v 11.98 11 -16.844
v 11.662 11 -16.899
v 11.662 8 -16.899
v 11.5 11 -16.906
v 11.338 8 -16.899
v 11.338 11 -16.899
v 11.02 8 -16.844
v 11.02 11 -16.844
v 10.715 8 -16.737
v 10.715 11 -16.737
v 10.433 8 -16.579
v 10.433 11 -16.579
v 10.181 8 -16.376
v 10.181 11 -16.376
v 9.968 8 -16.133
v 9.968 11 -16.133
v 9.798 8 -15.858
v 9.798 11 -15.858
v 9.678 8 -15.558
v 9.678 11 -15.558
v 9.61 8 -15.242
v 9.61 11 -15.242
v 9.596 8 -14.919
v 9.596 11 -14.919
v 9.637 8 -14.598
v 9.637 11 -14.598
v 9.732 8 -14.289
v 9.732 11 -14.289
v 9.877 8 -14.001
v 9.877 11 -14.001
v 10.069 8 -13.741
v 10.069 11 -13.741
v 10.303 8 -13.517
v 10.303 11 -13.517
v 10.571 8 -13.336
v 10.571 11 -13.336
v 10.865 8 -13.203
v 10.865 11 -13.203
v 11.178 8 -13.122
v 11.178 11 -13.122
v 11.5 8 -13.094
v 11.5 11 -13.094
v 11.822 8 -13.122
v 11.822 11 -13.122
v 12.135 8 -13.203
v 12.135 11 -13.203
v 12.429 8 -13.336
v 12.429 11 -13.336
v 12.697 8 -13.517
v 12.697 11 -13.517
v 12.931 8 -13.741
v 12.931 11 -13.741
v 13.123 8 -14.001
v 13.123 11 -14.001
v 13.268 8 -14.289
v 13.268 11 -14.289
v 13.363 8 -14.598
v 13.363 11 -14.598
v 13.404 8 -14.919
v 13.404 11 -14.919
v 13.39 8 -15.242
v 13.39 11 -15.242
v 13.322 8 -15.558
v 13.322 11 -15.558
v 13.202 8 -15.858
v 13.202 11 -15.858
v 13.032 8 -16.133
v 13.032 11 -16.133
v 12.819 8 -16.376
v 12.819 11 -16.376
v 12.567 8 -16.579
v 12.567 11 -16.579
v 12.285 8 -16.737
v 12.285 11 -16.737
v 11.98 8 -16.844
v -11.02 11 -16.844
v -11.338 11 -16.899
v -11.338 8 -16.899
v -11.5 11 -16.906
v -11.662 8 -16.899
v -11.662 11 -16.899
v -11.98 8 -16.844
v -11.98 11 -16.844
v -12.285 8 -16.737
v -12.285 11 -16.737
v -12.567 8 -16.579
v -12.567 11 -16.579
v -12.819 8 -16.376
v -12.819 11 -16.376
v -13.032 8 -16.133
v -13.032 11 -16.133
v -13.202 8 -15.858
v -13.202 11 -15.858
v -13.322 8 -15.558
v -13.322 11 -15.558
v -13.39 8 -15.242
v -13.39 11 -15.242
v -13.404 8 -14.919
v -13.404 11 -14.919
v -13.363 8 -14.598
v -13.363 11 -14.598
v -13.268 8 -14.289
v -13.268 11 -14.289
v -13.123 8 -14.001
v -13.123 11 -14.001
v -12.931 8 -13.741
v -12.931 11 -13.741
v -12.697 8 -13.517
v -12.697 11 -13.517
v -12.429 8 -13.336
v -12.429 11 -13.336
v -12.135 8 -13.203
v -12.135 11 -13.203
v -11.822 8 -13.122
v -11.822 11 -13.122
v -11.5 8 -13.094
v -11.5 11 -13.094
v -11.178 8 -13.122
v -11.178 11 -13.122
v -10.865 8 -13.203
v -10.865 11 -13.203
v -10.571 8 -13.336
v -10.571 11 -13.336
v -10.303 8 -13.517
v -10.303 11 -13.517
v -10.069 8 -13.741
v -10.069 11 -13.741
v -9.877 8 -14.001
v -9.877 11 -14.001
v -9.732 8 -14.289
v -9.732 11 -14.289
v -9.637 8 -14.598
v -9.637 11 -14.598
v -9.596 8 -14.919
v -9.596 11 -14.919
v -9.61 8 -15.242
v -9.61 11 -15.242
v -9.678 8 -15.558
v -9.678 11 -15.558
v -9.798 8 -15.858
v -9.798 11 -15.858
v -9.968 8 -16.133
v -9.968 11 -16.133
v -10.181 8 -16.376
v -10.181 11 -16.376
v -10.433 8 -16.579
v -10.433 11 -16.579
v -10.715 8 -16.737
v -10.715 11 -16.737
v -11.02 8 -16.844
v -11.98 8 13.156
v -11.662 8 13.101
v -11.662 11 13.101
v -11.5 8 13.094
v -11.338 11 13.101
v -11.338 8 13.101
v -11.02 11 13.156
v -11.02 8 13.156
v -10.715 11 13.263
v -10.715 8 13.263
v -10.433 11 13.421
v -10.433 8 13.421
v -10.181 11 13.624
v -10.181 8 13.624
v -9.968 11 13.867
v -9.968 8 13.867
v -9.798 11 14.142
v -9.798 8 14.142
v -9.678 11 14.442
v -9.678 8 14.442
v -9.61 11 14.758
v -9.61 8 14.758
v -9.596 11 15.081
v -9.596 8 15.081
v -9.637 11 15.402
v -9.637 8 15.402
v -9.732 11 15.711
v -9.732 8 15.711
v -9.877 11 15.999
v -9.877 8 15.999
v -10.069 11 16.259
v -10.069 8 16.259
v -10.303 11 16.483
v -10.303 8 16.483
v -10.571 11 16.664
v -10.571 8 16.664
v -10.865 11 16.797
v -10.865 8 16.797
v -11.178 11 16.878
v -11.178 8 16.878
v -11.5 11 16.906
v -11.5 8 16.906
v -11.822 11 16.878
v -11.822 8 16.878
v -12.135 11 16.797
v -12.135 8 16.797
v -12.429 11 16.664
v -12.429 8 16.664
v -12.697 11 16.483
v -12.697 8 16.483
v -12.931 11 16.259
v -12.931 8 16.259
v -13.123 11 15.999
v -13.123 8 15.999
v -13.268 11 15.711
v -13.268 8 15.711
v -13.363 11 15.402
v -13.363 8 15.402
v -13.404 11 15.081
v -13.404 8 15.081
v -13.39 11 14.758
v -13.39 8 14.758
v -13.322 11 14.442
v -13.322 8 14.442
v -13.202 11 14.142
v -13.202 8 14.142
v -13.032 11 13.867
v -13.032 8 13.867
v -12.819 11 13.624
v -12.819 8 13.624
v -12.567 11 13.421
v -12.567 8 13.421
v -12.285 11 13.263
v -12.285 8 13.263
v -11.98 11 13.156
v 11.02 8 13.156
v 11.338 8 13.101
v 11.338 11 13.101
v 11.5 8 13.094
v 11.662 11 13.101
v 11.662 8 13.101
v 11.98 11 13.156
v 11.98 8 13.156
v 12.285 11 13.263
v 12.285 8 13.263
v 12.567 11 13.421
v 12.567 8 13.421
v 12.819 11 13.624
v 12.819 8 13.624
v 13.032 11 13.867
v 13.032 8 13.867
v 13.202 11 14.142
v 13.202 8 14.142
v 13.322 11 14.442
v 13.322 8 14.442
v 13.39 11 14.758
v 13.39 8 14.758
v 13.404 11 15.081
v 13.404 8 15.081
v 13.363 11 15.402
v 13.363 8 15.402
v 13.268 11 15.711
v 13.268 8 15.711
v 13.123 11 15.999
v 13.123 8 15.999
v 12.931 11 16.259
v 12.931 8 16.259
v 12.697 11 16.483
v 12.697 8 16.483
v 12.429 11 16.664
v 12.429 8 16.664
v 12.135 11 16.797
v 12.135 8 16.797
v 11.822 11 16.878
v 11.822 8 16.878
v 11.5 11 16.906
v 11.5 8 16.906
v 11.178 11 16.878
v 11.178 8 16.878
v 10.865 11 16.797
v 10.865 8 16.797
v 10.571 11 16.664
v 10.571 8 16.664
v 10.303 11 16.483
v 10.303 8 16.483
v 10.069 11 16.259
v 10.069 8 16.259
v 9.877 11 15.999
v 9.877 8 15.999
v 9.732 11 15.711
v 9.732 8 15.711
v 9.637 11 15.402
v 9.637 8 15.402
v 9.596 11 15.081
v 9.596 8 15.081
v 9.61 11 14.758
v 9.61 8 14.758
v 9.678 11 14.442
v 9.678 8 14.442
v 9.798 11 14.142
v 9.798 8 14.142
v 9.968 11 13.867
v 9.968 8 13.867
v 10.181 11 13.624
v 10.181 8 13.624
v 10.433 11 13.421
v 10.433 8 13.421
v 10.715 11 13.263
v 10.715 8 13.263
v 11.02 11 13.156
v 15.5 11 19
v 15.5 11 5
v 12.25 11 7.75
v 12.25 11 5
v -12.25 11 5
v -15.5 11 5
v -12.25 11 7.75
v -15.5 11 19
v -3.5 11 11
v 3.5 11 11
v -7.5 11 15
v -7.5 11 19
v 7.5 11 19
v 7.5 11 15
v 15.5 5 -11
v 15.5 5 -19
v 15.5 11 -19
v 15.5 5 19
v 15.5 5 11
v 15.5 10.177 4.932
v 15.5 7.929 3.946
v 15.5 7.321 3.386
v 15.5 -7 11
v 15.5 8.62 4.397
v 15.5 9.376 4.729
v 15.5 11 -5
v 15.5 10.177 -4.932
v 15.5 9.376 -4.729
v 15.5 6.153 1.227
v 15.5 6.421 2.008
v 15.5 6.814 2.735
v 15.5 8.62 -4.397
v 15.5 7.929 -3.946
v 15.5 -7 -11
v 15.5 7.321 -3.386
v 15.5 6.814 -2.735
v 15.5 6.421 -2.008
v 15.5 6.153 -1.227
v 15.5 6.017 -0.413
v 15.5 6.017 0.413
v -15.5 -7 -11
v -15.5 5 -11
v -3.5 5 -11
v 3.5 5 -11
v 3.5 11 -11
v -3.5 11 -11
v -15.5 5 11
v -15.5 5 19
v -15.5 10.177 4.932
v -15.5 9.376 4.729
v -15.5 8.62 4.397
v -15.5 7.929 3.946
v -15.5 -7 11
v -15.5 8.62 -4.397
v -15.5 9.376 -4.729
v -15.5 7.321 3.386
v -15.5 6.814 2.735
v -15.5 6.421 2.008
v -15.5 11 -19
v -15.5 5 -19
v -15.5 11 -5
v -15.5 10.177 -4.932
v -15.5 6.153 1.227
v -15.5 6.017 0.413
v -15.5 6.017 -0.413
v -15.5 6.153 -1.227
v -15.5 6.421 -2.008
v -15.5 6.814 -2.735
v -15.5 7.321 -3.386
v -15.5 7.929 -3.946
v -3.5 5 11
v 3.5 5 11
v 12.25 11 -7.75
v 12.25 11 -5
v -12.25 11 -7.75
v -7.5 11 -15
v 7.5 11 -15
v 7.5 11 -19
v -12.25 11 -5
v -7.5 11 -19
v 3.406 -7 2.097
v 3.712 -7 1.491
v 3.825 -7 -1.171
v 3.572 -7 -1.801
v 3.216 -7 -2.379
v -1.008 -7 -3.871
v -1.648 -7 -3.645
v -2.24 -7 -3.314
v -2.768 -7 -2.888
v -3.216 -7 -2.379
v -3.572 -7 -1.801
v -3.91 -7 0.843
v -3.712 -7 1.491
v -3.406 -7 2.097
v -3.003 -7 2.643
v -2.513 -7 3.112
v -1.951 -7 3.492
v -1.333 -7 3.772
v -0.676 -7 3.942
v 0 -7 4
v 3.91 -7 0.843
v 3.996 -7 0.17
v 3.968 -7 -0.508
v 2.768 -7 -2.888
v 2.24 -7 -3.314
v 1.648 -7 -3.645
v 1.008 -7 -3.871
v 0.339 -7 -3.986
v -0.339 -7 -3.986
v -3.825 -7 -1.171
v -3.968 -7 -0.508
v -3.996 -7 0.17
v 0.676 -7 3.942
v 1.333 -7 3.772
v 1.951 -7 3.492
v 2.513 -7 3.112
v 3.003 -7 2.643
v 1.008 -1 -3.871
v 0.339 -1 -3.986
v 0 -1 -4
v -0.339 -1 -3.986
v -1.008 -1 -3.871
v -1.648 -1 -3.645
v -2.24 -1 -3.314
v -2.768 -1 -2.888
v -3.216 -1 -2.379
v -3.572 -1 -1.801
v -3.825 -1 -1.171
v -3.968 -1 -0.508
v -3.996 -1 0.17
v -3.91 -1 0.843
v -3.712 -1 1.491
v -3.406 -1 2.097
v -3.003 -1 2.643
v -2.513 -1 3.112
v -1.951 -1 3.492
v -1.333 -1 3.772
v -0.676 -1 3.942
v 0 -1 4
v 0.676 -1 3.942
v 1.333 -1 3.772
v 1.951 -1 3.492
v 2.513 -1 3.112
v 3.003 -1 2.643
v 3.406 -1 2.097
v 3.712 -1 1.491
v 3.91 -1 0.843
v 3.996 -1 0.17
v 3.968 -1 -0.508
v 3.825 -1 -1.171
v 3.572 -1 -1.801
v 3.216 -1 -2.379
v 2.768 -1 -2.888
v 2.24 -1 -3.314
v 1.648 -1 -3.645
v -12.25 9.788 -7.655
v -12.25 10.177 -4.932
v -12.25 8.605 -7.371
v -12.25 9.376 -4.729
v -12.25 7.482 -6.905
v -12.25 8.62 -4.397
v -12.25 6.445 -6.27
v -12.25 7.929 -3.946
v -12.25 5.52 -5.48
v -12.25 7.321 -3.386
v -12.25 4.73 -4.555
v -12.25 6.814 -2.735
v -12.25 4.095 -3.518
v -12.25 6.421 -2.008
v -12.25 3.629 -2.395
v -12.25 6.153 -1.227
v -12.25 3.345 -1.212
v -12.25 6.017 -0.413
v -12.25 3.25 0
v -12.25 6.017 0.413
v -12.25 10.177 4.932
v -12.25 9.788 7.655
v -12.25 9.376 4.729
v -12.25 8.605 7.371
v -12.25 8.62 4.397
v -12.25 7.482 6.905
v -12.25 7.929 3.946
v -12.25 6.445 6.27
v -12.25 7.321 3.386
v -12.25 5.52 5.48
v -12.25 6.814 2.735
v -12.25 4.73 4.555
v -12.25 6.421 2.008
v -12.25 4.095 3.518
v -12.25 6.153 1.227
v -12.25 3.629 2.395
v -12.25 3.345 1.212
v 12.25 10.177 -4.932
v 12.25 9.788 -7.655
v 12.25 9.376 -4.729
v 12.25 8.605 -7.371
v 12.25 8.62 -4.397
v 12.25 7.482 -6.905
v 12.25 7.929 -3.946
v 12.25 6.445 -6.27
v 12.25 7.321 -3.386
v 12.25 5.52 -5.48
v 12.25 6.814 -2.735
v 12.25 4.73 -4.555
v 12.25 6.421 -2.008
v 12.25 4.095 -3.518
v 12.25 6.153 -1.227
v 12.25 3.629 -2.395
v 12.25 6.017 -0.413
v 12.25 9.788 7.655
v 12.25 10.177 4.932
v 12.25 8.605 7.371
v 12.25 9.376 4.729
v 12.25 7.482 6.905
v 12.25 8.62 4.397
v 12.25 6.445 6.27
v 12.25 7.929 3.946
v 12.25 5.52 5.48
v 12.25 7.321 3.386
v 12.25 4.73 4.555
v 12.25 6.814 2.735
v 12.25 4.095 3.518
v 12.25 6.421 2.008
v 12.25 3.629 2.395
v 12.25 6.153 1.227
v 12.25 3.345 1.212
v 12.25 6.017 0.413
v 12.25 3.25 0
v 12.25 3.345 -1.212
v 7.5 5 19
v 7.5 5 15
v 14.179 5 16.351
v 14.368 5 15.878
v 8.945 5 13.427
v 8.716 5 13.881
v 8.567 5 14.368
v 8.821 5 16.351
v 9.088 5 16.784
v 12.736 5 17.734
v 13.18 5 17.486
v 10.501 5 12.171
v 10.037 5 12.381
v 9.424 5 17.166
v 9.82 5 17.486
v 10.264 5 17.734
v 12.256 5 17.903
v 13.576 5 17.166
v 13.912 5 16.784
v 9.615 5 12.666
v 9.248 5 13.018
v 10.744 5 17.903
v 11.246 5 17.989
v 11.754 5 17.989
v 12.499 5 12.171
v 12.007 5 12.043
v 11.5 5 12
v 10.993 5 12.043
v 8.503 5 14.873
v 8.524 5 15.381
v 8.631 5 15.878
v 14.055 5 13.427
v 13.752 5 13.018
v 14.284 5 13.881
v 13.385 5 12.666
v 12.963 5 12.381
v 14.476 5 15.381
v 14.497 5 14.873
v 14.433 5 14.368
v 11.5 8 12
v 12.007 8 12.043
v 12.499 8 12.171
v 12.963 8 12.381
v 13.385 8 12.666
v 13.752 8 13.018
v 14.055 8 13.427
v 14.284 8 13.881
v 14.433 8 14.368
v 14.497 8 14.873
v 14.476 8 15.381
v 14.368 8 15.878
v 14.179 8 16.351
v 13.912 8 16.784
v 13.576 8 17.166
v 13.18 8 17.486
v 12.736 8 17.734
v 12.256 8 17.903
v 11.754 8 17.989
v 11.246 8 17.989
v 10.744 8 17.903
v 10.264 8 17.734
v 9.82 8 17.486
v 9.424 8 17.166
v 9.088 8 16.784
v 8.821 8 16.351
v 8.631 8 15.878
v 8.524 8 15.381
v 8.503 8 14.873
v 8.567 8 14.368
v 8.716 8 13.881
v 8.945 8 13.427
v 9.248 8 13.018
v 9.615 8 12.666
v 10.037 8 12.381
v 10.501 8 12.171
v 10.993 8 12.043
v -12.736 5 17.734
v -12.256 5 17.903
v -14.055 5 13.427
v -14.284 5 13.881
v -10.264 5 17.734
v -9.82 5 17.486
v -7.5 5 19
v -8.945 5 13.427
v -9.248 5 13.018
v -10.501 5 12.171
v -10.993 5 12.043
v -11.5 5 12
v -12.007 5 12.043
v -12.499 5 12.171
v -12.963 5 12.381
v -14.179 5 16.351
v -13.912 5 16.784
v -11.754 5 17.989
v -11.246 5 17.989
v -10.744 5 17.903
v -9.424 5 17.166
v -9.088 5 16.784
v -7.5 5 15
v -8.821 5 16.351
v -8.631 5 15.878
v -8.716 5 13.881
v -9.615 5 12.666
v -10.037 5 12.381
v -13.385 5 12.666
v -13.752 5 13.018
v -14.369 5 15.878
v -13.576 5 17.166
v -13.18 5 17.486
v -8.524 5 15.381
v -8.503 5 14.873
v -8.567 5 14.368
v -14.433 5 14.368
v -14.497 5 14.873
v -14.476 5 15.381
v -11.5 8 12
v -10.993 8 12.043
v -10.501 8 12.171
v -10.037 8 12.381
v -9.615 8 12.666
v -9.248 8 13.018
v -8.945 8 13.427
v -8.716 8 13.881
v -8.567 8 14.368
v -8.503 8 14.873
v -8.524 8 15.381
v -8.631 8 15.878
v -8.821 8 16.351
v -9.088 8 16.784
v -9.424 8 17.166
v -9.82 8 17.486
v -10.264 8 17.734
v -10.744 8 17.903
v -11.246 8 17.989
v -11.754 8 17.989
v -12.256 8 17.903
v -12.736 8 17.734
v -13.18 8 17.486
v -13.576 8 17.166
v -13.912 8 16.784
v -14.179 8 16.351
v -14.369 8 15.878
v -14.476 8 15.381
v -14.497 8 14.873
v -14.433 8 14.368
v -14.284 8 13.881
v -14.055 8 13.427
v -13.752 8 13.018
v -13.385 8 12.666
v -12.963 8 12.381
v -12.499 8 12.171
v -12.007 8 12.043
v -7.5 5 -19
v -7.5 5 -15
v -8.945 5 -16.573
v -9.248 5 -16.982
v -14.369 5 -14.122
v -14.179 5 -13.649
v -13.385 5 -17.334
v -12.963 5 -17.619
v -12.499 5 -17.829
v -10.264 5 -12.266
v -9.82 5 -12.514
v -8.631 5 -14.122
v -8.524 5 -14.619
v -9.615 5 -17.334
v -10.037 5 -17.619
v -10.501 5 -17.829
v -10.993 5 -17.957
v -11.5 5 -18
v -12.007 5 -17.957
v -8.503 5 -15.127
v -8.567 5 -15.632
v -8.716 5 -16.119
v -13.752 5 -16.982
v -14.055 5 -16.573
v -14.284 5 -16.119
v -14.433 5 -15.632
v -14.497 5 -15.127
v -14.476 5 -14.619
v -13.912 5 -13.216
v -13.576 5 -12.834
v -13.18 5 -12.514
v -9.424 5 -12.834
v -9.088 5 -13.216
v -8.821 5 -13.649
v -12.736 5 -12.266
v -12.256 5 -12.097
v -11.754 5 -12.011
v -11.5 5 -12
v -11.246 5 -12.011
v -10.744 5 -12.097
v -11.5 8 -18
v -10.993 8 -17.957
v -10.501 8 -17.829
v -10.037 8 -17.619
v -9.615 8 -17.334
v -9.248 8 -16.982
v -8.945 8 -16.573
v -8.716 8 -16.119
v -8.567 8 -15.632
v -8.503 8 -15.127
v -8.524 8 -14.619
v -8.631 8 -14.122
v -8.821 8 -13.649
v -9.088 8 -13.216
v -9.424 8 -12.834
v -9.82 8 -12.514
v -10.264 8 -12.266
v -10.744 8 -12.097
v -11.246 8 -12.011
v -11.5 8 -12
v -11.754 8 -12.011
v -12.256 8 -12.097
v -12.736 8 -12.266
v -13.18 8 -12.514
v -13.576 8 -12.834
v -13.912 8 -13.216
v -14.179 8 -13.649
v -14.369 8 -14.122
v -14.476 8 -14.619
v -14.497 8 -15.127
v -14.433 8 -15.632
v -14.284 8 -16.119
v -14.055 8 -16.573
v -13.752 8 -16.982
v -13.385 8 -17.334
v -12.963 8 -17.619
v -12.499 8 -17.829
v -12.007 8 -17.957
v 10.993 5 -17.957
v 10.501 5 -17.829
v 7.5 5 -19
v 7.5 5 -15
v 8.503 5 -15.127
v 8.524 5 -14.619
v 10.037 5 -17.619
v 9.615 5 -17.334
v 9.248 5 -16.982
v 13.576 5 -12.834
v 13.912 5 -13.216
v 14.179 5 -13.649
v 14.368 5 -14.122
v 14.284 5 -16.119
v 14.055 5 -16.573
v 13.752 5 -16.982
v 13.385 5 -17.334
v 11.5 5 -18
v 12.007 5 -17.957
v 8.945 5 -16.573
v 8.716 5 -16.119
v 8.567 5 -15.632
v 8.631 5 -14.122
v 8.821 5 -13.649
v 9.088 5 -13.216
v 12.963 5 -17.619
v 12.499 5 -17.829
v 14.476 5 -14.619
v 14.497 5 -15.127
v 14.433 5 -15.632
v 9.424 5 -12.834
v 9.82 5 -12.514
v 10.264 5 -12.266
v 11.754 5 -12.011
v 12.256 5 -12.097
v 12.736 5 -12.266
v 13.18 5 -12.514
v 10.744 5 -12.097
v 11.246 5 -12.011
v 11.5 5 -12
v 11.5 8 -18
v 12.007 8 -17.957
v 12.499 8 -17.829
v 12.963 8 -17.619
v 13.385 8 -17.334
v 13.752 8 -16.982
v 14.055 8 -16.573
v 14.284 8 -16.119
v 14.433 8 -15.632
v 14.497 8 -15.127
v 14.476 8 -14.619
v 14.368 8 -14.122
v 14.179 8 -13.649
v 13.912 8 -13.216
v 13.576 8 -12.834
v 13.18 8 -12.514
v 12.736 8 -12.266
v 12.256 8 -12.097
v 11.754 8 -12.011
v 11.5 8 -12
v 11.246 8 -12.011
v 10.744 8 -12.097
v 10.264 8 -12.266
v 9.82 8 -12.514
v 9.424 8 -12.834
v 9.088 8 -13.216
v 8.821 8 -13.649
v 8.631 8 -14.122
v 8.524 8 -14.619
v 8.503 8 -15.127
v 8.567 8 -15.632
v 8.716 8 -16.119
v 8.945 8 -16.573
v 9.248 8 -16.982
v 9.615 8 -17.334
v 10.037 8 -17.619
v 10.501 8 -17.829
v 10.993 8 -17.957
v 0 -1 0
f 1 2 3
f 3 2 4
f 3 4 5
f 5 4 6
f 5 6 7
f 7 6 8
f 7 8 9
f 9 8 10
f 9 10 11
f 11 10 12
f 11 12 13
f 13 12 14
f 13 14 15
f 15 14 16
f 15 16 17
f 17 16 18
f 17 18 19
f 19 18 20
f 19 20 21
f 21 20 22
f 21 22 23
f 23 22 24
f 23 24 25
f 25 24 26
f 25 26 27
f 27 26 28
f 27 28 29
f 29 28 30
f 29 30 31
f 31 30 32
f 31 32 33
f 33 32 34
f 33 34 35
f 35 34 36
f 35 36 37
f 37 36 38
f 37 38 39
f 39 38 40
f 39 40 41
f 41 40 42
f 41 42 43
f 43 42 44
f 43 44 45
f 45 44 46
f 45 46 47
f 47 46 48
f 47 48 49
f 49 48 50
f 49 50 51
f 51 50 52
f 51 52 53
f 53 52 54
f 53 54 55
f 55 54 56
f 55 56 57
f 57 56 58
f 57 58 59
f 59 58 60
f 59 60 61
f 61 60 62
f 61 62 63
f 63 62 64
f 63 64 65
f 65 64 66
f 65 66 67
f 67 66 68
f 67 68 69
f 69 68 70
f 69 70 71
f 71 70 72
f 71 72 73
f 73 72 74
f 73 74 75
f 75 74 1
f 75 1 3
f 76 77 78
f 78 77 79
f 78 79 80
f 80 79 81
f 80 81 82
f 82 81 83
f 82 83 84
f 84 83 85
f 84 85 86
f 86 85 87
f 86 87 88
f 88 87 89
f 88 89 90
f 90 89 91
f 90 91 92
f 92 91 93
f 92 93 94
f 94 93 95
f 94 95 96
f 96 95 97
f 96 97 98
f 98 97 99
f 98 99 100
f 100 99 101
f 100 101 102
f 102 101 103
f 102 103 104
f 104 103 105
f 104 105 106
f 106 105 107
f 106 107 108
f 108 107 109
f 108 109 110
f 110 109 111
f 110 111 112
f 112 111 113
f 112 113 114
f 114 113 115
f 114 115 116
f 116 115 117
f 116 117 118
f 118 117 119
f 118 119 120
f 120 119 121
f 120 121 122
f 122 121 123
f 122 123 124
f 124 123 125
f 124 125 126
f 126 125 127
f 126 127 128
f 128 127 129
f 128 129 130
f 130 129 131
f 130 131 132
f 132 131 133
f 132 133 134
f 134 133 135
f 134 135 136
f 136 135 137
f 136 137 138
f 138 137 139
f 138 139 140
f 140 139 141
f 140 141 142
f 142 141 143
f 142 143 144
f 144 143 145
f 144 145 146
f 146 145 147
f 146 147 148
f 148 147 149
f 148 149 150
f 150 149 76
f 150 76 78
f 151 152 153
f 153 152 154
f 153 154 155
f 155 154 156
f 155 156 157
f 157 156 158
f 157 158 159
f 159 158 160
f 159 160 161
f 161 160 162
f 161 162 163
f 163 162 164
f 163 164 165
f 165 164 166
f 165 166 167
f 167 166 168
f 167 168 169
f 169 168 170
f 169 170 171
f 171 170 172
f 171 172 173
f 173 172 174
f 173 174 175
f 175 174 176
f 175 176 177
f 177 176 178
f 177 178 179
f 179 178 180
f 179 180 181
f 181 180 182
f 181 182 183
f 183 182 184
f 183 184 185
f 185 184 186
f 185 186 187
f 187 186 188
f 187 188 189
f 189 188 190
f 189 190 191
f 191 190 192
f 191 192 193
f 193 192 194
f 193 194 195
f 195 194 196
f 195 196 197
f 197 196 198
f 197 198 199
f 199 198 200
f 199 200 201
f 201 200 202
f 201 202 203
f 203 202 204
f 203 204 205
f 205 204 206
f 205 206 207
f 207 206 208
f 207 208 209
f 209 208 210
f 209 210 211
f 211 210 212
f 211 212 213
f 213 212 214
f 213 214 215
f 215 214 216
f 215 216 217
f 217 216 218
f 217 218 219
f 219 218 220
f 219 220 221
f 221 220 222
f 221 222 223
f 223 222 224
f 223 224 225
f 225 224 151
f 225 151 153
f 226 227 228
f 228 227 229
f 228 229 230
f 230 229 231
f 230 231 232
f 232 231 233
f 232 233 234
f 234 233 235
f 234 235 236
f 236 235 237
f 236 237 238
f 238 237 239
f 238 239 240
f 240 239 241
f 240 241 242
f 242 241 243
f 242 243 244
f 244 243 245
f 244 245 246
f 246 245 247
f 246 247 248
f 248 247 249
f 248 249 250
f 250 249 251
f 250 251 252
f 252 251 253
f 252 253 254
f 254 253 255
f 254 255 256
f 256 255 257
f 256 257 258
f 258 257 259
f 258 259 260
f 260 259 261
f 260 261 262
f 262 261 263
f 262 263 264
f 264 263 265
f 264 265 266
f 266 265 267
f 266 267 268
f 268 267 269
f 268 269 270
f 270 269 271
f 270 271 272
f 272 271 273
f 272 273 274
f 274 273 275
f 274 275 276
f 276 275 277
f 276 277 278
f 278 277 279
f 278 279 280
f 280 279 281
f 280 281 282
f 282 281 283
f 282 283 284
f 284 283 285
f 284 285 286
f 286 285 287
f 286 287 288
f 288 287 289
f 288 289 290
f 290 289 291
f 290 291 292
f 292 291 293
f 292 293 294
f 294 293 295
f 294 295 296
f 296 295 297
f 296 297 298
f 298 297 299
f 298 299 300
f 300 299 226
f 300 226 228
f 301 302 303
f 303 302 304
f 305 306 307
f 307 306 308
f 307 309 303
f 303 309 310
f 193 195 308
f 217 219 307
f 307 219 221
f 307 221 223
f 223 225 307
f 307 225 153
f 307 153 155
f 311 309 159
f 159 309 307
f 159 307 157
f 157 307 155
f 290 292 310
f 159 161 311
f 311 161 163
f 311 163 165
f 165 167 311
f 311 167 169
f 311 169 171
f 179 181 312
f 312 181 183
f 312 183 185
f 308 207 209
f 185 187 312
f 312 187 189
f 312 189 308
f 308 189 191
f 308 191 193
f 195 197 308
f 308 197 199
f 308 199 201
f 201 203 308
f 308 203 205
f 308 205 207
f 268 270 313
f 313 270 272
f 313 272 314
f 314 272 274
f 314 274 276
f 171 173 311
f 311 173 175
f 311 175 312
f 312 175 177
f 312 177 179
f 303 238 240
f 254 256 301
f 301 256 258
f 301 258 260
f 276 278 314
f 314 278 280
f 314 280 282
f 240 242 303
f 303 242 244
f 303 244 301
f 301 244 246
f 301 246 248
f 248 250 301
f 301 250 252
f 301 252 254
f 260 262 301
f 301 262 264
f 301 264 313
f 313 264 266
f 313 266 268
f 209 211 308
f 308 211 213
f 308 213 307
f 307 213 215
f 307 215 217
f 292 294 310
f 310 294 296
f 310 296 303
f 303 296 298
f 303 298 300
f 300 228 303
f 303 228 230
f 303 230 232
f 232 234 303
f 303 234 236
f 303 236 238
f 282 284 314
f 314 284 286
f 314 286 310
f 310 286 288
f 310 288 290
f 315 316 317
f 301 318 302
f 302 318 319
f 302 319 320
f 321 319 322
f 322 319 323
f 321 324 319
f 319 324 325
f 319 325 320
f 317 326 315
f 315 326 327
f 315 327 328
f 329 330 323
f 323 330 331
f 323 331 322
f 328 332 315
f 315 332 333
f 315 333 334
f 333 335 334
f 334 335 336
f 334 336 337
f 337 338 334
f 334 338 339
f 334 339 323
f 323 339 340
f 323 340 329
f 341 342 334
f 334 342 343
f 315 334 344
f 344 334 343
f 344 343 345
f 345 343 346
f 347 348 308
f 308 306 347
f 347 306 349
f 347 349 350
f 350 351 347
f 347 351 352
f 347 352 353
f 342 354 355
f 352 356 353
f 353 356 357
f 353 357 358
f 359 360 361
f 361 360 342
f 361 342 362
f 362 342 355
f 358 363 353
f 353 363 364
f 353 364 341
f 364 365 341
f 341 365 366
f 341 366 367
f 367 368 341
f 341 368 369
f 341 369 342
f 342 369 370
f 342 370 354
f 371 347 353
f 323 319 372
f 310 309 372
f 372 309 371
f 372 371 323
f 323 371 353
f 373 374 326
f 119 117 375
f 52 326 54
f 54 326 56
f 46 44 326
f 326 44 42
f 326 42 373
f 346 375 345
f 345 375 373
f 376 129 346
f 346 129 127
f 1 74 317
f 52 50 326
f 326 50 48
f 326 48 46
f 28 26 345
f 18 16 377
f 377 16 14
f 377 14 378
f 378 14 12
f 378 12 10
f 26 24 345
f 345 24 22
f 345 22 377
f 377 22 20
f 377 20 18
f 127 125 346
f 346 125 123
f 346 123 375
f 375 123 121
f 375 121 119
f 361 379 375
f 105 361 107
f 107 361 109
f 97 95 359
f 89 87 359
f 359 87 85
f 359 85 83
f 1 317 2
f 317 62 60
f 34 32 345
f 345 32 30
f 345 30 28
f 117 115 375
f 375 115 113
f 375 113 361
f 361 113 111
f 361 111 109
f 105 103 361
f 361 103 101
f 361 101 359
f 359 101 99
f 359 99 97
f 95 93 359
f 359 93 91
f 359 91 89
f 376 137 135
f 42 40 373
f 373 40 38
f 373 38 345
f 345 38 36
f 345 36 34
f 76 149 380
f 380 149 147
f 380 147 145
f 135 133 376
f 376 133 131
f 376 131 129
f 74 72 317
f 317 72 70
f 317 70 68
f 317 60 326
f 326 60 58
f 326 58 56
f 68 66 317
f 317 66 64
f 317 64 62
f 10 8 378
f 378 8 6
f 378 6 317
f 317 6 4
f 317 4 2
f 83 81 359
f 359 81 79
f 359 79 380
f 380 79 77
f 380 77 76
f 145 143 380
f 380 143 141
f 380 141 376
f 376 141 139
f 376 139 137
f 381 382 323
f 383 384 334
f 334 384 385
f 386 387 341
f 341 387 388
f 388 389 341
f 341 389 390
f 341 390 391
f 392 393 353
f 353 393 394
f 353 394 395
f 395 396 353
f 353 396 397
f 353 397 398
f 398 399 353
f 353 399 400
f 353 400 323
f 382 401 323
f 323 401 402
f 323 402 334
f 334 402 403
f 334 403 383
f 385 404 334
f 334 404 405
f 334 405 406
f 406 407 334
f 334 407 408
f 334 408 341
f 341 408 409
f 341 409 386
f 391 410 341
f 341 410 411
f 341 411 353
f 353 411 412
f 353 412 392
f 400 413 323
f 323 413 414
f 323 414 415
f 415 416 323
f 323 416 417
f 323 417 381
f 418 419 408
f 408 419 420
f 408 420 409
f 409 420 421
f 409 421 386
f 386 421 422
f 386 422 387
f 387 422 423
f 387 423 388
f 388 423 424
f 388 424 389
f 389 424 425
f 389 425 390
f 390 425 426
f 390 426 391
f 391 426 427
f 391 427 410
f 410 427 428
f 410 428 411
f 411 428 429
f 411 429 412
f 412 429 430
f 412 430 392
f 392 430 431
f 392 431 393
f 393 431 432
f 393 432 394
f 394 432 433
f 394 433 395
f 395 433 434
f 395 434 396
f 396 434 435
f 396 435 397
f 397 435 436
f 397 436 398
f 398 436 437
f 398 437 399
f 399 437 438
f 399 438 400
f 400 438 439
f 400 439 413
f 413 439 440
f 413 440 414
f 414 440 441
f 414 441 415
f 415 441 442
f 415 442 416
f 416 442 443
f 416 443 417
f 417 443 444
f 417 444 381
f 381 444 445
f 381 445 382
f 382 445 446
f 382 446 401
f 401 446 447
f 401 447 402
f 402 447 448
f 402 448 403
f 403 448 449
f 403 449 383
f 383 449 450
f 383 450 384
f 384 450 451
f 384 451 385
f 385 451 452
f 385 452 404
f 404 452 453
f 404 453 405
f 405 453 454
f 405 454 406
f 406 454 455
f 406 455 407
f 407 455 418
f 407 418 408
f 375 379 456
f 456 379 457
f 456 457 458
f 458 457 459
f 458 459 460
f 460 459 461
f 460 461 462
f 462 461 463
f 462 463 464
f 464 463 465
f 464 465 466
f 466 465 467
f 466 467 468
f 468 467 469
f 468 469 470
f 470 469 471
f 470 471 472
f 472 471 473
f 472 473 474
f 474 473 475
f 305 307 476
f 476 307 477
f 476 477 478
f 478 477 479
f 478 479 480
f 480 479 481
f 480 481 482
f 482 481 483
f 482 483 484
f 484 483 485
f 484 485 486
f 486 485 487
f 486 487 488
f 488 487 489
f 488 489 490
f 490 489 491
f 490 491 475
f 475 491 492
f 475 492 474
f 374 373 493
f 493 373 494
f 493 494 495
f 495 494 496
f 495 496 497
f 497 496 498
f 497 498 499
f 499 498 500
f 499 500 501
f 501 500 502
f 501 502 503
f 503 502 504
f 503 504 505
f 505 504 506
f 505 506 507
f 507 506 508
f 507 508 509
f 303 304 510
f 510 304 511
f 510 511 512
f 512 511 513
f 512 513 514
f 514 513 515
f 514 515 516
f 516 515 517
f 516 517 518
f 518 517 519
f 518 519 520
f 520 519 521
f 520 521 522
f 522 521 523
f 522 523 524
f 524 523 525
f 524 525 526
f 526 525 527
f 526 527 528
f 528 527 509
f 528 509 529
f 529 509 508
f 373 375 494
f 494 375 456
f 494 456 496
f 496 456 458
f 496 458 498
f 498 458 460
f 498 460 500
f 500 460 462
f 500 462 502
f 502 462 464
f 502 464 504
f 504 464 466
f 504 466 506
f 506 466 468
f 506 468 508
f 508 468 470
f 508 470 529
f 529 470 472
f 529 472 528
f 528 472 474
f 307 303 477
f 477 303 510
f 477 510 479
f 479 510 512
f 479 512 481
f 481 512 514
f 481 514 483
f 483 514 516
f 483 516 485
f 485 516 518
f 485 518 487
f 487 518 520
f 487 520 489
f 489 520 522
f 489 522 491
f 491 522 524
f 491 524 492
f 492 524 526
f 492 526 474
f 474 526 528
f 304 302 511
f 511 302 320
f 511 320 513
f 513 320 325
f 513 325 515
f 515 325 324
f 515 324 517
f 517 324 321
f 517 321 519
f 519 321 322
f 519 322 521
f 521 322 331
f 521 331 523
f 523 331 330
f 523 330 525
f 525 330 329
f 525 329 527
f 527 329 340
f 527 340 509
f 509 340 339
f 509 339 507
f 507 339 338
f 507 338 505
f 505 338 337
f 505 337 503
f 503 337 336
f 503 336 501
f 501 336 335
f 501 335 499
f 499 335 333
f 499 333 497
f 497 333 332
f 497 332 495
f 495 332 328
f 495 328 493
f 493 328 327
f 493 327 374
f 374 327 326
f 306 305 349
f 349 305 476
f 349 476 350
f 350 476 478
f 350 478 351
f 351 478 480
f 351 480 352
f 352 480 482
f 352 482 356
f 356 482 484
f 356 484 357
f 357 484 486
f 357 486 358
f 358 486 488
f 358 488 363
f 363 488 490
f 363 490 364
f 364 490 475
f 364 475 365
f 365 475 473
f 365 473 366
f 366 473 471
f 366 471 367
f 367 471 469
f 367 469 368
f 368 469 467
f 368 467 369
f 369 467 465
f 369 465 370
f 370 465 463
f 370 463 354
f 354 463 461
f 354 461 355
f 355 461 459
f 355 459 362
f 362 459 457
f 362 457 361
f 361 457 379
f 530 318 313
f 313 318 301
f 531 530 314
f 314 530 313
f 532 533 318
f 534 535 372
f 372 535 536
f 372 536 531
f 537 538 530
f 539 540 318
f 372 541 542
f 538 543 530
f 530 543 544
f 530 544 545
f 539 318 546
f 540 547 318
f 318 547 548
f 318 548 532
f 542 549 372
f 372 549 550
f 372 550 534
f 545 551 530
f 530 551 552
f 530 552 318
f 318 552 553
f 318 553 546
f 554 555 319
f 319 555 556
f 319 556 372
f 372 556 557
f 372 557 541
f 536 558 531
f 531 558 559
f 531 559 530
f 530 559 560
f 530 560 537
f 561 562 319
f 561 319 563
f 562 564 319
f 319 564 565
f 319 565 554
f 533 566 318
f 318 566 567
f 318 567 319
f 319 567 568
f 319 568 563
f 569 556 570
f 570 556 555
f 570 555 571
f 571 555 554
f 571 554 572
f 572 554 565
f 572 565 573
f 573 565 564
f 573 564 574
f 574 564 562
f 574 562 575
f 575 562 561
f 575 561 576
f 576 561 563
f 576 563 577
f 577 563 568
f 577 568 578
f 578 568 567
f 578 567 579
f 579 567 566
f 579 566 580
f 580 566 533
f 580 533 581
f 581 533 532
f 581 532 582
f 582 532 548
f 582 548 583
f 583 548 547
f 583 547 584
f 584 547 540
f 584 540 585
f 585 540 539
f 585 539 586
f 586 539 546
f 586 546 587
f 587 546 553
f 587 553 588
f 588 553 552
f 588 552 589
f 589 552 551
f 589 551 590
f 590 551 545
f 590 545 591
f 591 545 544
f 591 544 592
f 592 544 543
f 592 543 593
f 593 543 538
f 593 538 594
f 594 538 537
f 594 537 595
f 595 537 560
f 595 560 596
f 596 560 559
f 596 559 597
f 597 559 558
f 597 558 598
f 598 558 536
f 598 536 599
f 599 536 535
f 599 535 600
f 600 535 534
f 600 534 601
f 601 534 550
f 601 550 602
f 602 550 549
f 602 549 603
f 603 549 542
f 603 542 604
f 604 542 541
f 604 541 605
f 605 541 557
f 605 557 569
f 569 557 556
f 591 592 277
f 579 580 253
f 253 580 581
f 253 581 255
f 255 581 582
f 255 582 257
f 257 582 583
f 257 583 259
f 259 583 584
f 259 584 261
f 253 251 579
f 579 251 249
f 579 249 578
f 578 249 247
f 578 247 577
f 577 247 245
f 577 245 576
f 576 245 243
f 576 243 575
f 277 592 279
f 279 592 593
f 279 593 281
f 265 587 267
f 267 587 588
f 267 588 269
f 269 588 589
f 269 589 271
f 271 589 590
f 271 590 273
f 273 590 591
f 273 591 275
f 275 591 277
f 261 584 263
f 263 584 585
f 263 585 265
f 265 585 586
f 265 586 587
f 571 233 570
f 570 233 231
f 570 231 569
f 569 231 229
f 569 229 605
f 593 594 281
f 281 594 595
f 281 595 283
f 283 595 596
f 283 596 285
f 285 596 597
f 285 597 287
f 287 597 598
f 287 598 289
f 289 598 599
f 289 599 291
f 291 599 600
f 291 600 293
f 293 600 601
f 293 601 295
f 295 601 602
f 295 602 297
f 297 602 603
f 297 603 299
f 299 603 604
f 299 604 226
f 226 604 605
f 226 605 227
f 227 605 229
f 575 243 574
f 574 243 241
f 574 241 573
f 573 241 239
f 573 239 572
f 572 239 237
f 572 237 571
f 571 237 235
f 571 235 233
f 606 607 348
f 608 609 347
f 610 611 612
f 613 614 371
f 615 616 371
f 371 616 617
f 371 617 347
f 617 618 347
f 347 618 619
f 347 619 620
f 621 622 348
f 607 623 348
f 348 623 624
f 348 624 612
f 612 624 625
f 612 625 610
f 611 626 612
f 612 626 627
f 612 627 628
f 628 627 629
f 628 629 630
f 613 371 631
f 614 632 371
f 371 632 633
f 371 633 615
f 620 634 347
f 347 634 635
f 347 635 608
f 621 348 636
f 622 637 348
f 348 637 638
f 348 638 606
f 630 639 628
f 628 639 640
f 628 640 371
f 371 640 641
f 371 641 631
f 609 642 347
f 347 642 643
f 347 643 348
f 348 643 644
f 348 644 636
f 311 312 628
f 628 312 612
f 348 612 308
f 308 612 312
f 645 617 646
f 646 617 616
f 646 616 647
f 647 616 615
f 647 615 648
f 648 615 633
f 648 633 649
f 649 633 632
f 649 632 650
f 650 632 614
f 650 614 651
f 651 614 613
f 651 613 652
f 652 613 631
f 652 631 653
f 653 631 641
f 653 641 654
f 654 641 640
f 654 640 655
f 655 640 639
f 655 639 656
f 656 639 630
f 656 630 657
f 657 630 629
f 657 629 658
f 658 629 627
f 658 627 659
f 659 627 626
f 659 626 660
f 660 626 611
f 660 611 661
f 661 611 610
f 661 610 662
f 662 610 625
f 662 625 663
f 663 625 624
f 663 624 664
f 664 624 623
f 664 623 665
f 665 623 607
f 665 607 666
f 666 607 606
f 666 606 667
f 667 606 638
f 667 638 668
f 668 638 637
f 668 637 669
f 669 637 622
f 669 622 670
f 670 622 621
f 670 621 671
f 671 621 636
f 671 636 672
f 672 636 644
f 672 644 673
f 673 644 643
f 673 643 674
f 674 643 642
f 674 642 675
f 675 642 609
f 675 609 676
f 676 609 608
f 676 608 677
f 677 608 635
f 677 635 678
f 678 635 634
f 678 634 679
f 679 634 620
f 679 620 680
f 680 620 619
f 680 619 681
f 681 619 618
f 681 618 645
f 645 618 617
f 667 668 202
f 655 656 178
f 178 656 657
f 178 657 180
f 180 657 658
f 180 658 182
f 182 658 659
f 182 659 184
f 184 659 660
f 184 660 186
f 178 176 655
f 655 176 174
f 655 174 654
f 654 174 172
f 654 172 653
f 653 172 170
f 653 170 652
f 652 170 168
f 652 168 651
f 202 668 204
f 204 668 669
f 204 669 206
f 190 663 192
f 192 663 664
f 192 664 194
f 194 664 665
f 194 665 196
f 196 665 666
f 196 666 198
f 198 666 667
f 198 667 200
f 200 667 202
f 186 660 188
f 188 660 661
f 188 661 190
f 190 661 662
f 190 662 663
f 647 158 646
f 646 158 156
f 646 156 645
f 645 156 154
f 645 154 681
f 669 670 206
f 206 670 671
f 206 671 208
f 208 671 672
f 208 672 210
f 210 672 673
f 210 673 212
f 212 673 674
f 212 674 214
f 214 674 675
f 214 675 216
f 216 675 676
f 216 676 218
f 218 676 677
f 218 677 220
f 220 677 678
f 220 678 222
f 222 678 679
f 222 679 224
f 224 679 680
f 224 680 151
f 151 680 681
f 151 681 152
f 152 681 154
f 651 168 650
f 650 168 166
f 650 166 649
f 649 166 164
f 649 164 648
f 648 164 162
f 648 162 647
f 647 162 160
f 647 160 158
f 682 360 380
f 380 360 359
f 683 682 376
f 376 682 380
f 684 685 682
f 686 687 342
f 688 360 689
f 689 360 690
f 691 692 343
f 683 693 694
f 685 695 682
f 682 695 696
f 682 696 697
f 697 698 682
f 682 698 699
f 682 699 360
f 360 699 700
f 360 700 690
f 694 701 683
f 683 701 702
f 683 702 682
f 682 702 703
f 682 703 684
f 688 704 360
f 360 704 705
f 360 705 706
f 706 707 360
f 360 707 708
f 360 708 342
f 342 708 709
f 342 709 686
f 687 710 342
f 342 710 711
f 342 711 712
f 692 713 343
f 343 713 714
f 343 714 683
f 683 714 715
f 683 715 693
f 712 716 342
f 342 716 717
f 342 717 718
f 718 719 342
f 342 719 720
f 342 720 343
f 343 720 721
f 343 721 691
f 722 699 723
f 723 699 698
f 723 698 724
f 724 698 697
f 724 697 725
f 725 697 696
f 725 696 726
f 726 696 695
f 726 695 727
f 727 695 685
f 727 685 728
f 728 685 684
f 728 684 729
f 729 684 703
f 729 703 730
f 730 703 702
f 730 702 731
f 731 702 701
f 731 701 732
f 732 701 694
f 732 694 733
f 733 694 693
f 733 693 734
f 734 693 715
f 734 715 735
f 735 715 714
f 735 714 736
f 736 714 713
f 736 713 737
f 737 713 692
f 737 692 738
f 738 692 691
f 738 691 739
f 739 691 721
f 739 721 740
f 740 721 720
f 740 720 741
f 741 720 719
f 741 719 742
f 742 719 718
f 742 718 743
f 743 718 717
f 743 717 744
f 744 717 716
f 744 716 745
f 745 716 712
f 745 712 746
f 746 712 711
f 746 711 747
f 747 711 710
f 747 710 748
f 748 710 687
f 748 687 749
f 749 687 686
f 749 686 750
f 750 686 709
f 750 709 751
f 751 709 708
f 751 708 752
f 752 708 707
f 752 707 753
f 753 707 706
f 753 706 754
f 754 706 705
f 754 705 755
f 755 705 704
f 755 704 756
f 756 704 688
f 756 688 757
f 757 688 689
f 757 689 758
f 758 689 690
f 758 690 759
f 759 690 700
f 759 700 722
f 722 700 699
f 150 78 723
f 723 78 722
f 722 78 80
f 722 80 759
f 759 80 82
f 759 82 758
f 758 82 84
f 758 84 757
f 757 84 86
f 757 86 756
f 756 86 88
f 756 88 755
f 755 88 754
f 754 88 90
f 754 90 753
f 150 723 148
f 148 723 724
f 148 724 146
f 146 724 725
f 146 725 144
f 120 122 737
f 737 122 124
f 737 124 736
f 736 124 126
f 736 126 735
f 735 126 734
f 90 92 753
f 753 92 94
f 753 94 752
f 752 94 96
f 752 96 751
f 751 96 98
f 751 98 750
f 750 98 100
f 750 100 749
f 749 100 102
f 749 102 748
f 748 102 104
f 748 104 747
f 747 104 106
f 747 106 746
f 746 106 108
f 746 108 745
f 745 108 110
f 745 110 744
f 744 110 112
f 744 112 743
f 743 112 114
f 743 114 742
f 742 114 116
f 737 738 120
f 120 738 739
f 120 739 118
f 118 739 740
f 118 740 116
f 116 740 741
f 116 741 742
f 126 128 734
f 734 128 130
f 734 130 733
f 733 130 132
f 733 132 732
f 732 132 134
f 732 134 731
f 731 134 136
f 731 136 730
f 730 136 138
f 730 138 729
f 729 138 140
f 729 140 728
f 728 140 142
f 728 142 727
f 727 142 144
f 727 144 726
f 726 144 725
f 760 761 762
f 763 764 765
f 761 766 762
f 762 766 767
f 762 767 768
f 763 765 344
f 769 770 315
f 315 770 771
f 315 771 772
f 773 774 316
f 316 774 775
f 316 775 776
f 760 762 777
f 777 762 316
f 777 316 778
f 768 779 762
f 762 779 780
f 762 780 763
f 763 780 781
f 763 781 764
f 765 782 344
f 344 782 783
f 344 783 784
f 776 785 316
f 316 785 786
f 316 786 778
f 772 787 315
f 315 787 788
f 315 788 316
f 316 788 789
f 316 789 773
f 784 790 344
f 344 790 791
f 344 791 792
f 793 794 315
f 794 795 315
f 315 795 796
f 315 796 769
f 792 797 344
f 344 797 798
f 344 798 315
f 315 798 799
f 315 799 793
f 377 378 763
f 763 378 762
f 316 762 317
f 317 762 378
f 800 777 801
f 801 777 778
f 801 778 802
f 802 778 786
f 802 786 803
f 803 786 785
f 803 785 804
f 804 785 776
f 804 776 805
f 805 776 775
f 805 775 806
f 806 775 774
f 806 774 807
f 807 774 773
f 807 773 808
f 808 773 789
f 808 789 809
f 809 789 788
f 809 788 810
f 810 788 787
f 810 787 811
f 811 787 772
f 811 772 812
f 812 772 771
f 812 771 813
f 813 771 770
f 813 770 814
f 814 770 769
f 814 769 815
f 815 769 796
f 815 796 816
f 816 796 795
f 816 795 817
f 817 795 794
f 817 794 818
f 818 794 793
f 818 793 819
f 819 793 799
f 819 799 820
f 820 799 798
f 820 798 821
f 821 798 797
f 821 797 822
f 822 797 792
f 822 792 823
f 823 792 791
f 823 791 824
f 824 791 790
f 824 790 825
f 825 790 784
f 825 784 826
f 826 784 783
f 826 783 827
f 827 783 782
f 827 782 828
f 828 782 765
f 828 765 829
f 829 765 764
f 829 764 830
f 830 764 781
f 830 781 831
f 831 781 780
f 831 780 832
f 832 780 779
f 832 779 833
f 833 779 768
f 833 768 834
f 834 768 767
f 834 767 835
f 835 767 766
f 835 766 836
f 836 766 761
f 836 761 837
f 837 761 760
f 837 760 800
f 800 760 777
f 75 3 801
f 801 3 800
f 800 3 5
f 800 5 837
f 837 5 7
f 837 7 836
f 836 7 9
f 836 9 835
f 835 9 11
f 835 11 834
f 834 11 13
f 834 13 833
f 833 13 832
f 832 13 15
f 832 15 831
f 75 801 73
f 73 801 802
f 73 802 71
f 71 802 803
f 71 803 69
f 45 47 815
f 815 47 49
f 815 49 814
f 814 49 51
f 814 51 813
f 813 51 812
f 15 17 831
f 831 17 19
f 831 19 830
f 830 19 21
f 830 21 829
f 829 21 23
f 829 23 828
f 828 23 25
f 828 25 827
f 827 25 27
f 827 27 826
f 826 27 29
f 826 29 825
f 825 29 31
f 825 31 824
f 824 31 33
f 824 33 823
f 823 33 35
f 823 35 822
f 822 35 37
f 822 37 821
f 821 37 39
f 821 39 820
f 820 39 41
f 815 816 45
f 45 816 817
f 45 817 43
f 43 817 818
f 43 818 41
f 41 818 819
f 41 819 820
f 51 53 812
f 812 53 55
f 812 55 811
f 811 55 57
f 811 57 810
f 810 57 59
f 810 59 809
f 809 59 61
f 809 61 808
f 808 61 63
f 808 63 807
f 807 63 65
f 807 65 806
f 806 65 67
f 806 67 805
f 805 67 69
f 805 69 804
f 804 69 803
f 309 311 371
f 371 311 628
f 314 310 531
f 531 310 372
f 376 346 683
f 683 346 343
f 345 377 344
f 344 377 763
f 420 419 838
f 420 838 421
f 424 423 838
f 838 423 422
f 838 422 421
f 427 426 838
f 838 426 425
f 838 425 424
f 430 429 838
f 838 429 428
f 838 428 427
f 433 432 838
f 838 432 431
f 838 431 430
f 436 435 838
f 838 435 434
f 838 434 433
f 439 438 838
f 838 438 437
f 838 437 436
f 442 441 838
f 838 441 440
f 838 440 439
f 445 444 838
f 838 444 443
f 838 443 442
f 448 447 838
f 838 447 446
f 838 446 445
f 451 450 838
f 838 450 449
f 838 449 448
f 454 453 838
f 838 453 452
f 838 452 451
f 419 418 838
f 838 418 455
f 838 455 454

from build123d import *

# Parameters (mm, degrees)
SKETCH1_W                 = 31
SKETCH1_H                 = 22
BOSS_EXTRUDE1_DEPTH       = 11
SKETCH2_W                 = 31
SKETCH2_H                 = 22
SKETCH2_R                 = 4
BOSS_EXTRUDE2_DEPTH       = 7
SKETCH3_W                 = 24.5
SKETCH3_H                 = 15.5
CUT_EXTRUDE1_DEPTH        = 7.75
FILLET1_R                 = 7.75
CUT_EXTRUDE2_DEPTH        = 32.812929761
CUT_EXTRUDE2_DEPTH_BACK   = 32.812929761
SKETCH4_R                 = 5
SKETCH5_W                 = 8
SKETCH5_H                 = 8
SKETCH5_R                 = 1.905800151
BOSS_EXTRUDE3_DEPTH       = 6
CUT_EXTRUDE3_START        = -3
SKETCH6_R                 = 3
SKETCH6_R_2               = 1.905800151
CUT_EXTRUDE3_DEPTH        = 3
MIRROR9_COPY_1_SKETCH_W   = 8
MIRROR9_COPY_1_SKETCH_H   = 8
MIRROR9_COPY_1_SKETCH_R   = 1.905800151
MIRROR9_COPY_1_DEPTH      = 6
MIRROR9_START             = -3
MIRROR9_COPY_2_SKETCH_R   = 3
MIRROR9_COPY_2_SKETCH_R_2 = 1.905800151
MIRROR9_COPY_2_DEPTH      = 3
CHAMFER2_SIZE             = 4
SKETCH7_R                 = 4
BOSS_EXTRUDE4_DEPTH       = 1


with BuildPart() as part:
    # Sketch1 → Boss-Extrude1 (new body)
    with BuildSketch(Plane(origin=(0, 0, 0), x_dir=(1, 0, 0), z_dir=(0, 1, 0))):
        Rectangle(SKETCH1_W, SKETCH1_H)
    extrude(amount=BOSS_EXTRUDE1_DEPTH)

    # Sketch2 → Boss-Extrude2 (add)
    with BuildSketch(Plane(origin=(0, 0, 0), x_dir=(1, 0, 0), z_dir=(0, 1, 0))):
        Rectangle(SKETCH2_W, SKETCH2_H)
        with Locations(Location((0, 0, 0), (0, 0, 270))):
            Circle(SKETCH2_R, mode=Mode.SUBTRACT)
    extrude(amount=-BOSS_EXTRUDE2_DEPTH)

    # Sketch3 → Cut-Extrude1 (cut)
    with BuildSketch(Plane(origin=(0, 11, 0), x_dir=(1, 0, 0), z_dir=(0, 1, 0))):
        Rectangle(SKETCH3_W, SKETCH3_H)
    extrude(amount=-CUT_EXTRUDE1_DEPTH, mode=Mode.SUBTRACT)

    # Fillet1
    fillet1_edges = [part.edges().sort_by_distance(p)[0] for p in [
        (0, 3.25, 7.75),
        (0, 3.25, -7.75),
    ]]
    fillet(fillet1_edges, radius=FILLET1_R - 0.0001)  # a hair under: the kernel refuses the full size

    # Sketch4 → Cut-Extrude2 (cut, two sides: drawn at the far end of the back side and taken through both)
    with BuildSketch(Plane(origin=(-12.25, 0, 0), x_dir=(0, 0, -1), z_dir=(1, 0, 0)).offset(-CUT_EXTRUDE2_DEPTH_BACK)):
        with Locations((0, 11)):
            Circle(SKETCH4_R)
    extrude(amount=CUT_EXTRUDE2_DEPTH + CUT_EXTRUDE2_DEPTH_BACK, mode=Mode.SUBTRACT)

    # Sketch5 → Boss-Extrude3 (add)
    with BuildSketch(Plane(origin=(0, 11, 0), x_dir=(1, 0, 0), z_dir=(0, 1, 0))):
        with Locations((11.5, -15)):
            Rectangle(SKETCH5_W, SKETCH5_H)
        with Locations(Location((11.5, -15, 0), (0, 0, 270))):
            Circle(SKETCH5_R, mode=Mode.SUBTRACT)
    boss_extrude3 = extrude(amount=-BOSS_EXTRUDE3_DEPTH)

    # Sketch6 → Cut-Extrude3 (cut)
    with BuildSketch(Plane.XZ.offset(-5).offset(CUT_EXTRUDE3_START)):
        with Locations(Location((11.5, 15, 0), (0, 0, 270))):
            Circle(SKETCH6_R)
        with Locations(Location((11.5, 15, 0), (0, 0, 90))):
            Circle(SKETCH6_R_2, mode=Mode.SUBTRACT)
    cut_extrude3 = extrude(amount=CUT_EXTRUDE3_DEPTH, mode=Mode.SUBTRACT)

    # Mirror8: Boss-Extrude3, Cut-Extrude3 across plane
    add(boss_extrude3.mirror(Plane(origin=(0, 0, 0), x_dir=(0, 0, 1), z_dir=(1, 0, 0))))
    add(cut_extrude3.mirror(Plane(origin=(0, 0, 0), x_dir=(0, 0, 1), z_dir=(1, 0, 0))), mode=Mode.SUBTRACT)

    # Mirror9: Boss-Extrude3, Cut-Extrude3 across plane
    add(boss_extrude3.mirror(Plane.XY))
    add(cut_extrude3.mirror(Plane.XY), mode=Mode.SUBTRACT)

    # Mirror9 copy 1 sketch → Mirror9 copy 1 (add)
    with BuildSketch(Plane(origin=(0, 11, 0), x_dir=(-1, 0, 0), z_dir=(0, 1, 0))):
        with Locations((11.5, -15)):
            Rectangle(MIRROR9_COPY_1_SKETCH_W, MIRROR9_COPY_1_SKETCH_H)
        with Locations(Location((11.5, -15, 0), (0, 0, 270))):
            Circle(MIRROR9_COPY_1_SKETCH_R, mode=Mode.SUBTRACT)
    extrude(amount=-MIRROR9_COPY_1_DEPTH)

    # Mirror9 copy 2 sketch → Mirror9 copy 2 (cut)
    with BuildSketch(Plane(origin=(0, 5, 0), x_dir=(-1, 0, 0), z_dir=(0, -1, 0)).offset(MIRROR9_START)):
        with Locations(Location((11.5, 15, 0), (0, 0, 270))):
            Circle(MIRROR9_COPY_2_SKETCH_R)
        with Locations(Location((11.5, 15, 0), (0, 0, 90))):
            Circle(MIRROR9_COPY_2_SKETCH_R_2, mode=Mode.SUBTRACT)
    extrude(amount=MIRROR9_COPY_2_DEPTH, mode=Mode.SUBTRACT)

    # Chamfer2
    chamfer2_edges = [part.edges().sort_by_distance(p)[0] for p in [
        (-7.5, 8, -11),
        (7.5, 8, -11),
        (7.5, 8, 11),
        (-7.5, 8, 11),
    ]]
    chamfer(chamfer2_edges, length=CHAMFER2_SIZE)

    # Sketch7 → Boss-Extrude4 (add)
    with BuildSketch(Plane.XZ):
        with Locations(Location((0, 0, 0), (0, 0, 90))):
            Circle(SKETCH7_R)
    extrude(amount=BOSS_EXTRUDE4_DEPTH)


solid = part.part
